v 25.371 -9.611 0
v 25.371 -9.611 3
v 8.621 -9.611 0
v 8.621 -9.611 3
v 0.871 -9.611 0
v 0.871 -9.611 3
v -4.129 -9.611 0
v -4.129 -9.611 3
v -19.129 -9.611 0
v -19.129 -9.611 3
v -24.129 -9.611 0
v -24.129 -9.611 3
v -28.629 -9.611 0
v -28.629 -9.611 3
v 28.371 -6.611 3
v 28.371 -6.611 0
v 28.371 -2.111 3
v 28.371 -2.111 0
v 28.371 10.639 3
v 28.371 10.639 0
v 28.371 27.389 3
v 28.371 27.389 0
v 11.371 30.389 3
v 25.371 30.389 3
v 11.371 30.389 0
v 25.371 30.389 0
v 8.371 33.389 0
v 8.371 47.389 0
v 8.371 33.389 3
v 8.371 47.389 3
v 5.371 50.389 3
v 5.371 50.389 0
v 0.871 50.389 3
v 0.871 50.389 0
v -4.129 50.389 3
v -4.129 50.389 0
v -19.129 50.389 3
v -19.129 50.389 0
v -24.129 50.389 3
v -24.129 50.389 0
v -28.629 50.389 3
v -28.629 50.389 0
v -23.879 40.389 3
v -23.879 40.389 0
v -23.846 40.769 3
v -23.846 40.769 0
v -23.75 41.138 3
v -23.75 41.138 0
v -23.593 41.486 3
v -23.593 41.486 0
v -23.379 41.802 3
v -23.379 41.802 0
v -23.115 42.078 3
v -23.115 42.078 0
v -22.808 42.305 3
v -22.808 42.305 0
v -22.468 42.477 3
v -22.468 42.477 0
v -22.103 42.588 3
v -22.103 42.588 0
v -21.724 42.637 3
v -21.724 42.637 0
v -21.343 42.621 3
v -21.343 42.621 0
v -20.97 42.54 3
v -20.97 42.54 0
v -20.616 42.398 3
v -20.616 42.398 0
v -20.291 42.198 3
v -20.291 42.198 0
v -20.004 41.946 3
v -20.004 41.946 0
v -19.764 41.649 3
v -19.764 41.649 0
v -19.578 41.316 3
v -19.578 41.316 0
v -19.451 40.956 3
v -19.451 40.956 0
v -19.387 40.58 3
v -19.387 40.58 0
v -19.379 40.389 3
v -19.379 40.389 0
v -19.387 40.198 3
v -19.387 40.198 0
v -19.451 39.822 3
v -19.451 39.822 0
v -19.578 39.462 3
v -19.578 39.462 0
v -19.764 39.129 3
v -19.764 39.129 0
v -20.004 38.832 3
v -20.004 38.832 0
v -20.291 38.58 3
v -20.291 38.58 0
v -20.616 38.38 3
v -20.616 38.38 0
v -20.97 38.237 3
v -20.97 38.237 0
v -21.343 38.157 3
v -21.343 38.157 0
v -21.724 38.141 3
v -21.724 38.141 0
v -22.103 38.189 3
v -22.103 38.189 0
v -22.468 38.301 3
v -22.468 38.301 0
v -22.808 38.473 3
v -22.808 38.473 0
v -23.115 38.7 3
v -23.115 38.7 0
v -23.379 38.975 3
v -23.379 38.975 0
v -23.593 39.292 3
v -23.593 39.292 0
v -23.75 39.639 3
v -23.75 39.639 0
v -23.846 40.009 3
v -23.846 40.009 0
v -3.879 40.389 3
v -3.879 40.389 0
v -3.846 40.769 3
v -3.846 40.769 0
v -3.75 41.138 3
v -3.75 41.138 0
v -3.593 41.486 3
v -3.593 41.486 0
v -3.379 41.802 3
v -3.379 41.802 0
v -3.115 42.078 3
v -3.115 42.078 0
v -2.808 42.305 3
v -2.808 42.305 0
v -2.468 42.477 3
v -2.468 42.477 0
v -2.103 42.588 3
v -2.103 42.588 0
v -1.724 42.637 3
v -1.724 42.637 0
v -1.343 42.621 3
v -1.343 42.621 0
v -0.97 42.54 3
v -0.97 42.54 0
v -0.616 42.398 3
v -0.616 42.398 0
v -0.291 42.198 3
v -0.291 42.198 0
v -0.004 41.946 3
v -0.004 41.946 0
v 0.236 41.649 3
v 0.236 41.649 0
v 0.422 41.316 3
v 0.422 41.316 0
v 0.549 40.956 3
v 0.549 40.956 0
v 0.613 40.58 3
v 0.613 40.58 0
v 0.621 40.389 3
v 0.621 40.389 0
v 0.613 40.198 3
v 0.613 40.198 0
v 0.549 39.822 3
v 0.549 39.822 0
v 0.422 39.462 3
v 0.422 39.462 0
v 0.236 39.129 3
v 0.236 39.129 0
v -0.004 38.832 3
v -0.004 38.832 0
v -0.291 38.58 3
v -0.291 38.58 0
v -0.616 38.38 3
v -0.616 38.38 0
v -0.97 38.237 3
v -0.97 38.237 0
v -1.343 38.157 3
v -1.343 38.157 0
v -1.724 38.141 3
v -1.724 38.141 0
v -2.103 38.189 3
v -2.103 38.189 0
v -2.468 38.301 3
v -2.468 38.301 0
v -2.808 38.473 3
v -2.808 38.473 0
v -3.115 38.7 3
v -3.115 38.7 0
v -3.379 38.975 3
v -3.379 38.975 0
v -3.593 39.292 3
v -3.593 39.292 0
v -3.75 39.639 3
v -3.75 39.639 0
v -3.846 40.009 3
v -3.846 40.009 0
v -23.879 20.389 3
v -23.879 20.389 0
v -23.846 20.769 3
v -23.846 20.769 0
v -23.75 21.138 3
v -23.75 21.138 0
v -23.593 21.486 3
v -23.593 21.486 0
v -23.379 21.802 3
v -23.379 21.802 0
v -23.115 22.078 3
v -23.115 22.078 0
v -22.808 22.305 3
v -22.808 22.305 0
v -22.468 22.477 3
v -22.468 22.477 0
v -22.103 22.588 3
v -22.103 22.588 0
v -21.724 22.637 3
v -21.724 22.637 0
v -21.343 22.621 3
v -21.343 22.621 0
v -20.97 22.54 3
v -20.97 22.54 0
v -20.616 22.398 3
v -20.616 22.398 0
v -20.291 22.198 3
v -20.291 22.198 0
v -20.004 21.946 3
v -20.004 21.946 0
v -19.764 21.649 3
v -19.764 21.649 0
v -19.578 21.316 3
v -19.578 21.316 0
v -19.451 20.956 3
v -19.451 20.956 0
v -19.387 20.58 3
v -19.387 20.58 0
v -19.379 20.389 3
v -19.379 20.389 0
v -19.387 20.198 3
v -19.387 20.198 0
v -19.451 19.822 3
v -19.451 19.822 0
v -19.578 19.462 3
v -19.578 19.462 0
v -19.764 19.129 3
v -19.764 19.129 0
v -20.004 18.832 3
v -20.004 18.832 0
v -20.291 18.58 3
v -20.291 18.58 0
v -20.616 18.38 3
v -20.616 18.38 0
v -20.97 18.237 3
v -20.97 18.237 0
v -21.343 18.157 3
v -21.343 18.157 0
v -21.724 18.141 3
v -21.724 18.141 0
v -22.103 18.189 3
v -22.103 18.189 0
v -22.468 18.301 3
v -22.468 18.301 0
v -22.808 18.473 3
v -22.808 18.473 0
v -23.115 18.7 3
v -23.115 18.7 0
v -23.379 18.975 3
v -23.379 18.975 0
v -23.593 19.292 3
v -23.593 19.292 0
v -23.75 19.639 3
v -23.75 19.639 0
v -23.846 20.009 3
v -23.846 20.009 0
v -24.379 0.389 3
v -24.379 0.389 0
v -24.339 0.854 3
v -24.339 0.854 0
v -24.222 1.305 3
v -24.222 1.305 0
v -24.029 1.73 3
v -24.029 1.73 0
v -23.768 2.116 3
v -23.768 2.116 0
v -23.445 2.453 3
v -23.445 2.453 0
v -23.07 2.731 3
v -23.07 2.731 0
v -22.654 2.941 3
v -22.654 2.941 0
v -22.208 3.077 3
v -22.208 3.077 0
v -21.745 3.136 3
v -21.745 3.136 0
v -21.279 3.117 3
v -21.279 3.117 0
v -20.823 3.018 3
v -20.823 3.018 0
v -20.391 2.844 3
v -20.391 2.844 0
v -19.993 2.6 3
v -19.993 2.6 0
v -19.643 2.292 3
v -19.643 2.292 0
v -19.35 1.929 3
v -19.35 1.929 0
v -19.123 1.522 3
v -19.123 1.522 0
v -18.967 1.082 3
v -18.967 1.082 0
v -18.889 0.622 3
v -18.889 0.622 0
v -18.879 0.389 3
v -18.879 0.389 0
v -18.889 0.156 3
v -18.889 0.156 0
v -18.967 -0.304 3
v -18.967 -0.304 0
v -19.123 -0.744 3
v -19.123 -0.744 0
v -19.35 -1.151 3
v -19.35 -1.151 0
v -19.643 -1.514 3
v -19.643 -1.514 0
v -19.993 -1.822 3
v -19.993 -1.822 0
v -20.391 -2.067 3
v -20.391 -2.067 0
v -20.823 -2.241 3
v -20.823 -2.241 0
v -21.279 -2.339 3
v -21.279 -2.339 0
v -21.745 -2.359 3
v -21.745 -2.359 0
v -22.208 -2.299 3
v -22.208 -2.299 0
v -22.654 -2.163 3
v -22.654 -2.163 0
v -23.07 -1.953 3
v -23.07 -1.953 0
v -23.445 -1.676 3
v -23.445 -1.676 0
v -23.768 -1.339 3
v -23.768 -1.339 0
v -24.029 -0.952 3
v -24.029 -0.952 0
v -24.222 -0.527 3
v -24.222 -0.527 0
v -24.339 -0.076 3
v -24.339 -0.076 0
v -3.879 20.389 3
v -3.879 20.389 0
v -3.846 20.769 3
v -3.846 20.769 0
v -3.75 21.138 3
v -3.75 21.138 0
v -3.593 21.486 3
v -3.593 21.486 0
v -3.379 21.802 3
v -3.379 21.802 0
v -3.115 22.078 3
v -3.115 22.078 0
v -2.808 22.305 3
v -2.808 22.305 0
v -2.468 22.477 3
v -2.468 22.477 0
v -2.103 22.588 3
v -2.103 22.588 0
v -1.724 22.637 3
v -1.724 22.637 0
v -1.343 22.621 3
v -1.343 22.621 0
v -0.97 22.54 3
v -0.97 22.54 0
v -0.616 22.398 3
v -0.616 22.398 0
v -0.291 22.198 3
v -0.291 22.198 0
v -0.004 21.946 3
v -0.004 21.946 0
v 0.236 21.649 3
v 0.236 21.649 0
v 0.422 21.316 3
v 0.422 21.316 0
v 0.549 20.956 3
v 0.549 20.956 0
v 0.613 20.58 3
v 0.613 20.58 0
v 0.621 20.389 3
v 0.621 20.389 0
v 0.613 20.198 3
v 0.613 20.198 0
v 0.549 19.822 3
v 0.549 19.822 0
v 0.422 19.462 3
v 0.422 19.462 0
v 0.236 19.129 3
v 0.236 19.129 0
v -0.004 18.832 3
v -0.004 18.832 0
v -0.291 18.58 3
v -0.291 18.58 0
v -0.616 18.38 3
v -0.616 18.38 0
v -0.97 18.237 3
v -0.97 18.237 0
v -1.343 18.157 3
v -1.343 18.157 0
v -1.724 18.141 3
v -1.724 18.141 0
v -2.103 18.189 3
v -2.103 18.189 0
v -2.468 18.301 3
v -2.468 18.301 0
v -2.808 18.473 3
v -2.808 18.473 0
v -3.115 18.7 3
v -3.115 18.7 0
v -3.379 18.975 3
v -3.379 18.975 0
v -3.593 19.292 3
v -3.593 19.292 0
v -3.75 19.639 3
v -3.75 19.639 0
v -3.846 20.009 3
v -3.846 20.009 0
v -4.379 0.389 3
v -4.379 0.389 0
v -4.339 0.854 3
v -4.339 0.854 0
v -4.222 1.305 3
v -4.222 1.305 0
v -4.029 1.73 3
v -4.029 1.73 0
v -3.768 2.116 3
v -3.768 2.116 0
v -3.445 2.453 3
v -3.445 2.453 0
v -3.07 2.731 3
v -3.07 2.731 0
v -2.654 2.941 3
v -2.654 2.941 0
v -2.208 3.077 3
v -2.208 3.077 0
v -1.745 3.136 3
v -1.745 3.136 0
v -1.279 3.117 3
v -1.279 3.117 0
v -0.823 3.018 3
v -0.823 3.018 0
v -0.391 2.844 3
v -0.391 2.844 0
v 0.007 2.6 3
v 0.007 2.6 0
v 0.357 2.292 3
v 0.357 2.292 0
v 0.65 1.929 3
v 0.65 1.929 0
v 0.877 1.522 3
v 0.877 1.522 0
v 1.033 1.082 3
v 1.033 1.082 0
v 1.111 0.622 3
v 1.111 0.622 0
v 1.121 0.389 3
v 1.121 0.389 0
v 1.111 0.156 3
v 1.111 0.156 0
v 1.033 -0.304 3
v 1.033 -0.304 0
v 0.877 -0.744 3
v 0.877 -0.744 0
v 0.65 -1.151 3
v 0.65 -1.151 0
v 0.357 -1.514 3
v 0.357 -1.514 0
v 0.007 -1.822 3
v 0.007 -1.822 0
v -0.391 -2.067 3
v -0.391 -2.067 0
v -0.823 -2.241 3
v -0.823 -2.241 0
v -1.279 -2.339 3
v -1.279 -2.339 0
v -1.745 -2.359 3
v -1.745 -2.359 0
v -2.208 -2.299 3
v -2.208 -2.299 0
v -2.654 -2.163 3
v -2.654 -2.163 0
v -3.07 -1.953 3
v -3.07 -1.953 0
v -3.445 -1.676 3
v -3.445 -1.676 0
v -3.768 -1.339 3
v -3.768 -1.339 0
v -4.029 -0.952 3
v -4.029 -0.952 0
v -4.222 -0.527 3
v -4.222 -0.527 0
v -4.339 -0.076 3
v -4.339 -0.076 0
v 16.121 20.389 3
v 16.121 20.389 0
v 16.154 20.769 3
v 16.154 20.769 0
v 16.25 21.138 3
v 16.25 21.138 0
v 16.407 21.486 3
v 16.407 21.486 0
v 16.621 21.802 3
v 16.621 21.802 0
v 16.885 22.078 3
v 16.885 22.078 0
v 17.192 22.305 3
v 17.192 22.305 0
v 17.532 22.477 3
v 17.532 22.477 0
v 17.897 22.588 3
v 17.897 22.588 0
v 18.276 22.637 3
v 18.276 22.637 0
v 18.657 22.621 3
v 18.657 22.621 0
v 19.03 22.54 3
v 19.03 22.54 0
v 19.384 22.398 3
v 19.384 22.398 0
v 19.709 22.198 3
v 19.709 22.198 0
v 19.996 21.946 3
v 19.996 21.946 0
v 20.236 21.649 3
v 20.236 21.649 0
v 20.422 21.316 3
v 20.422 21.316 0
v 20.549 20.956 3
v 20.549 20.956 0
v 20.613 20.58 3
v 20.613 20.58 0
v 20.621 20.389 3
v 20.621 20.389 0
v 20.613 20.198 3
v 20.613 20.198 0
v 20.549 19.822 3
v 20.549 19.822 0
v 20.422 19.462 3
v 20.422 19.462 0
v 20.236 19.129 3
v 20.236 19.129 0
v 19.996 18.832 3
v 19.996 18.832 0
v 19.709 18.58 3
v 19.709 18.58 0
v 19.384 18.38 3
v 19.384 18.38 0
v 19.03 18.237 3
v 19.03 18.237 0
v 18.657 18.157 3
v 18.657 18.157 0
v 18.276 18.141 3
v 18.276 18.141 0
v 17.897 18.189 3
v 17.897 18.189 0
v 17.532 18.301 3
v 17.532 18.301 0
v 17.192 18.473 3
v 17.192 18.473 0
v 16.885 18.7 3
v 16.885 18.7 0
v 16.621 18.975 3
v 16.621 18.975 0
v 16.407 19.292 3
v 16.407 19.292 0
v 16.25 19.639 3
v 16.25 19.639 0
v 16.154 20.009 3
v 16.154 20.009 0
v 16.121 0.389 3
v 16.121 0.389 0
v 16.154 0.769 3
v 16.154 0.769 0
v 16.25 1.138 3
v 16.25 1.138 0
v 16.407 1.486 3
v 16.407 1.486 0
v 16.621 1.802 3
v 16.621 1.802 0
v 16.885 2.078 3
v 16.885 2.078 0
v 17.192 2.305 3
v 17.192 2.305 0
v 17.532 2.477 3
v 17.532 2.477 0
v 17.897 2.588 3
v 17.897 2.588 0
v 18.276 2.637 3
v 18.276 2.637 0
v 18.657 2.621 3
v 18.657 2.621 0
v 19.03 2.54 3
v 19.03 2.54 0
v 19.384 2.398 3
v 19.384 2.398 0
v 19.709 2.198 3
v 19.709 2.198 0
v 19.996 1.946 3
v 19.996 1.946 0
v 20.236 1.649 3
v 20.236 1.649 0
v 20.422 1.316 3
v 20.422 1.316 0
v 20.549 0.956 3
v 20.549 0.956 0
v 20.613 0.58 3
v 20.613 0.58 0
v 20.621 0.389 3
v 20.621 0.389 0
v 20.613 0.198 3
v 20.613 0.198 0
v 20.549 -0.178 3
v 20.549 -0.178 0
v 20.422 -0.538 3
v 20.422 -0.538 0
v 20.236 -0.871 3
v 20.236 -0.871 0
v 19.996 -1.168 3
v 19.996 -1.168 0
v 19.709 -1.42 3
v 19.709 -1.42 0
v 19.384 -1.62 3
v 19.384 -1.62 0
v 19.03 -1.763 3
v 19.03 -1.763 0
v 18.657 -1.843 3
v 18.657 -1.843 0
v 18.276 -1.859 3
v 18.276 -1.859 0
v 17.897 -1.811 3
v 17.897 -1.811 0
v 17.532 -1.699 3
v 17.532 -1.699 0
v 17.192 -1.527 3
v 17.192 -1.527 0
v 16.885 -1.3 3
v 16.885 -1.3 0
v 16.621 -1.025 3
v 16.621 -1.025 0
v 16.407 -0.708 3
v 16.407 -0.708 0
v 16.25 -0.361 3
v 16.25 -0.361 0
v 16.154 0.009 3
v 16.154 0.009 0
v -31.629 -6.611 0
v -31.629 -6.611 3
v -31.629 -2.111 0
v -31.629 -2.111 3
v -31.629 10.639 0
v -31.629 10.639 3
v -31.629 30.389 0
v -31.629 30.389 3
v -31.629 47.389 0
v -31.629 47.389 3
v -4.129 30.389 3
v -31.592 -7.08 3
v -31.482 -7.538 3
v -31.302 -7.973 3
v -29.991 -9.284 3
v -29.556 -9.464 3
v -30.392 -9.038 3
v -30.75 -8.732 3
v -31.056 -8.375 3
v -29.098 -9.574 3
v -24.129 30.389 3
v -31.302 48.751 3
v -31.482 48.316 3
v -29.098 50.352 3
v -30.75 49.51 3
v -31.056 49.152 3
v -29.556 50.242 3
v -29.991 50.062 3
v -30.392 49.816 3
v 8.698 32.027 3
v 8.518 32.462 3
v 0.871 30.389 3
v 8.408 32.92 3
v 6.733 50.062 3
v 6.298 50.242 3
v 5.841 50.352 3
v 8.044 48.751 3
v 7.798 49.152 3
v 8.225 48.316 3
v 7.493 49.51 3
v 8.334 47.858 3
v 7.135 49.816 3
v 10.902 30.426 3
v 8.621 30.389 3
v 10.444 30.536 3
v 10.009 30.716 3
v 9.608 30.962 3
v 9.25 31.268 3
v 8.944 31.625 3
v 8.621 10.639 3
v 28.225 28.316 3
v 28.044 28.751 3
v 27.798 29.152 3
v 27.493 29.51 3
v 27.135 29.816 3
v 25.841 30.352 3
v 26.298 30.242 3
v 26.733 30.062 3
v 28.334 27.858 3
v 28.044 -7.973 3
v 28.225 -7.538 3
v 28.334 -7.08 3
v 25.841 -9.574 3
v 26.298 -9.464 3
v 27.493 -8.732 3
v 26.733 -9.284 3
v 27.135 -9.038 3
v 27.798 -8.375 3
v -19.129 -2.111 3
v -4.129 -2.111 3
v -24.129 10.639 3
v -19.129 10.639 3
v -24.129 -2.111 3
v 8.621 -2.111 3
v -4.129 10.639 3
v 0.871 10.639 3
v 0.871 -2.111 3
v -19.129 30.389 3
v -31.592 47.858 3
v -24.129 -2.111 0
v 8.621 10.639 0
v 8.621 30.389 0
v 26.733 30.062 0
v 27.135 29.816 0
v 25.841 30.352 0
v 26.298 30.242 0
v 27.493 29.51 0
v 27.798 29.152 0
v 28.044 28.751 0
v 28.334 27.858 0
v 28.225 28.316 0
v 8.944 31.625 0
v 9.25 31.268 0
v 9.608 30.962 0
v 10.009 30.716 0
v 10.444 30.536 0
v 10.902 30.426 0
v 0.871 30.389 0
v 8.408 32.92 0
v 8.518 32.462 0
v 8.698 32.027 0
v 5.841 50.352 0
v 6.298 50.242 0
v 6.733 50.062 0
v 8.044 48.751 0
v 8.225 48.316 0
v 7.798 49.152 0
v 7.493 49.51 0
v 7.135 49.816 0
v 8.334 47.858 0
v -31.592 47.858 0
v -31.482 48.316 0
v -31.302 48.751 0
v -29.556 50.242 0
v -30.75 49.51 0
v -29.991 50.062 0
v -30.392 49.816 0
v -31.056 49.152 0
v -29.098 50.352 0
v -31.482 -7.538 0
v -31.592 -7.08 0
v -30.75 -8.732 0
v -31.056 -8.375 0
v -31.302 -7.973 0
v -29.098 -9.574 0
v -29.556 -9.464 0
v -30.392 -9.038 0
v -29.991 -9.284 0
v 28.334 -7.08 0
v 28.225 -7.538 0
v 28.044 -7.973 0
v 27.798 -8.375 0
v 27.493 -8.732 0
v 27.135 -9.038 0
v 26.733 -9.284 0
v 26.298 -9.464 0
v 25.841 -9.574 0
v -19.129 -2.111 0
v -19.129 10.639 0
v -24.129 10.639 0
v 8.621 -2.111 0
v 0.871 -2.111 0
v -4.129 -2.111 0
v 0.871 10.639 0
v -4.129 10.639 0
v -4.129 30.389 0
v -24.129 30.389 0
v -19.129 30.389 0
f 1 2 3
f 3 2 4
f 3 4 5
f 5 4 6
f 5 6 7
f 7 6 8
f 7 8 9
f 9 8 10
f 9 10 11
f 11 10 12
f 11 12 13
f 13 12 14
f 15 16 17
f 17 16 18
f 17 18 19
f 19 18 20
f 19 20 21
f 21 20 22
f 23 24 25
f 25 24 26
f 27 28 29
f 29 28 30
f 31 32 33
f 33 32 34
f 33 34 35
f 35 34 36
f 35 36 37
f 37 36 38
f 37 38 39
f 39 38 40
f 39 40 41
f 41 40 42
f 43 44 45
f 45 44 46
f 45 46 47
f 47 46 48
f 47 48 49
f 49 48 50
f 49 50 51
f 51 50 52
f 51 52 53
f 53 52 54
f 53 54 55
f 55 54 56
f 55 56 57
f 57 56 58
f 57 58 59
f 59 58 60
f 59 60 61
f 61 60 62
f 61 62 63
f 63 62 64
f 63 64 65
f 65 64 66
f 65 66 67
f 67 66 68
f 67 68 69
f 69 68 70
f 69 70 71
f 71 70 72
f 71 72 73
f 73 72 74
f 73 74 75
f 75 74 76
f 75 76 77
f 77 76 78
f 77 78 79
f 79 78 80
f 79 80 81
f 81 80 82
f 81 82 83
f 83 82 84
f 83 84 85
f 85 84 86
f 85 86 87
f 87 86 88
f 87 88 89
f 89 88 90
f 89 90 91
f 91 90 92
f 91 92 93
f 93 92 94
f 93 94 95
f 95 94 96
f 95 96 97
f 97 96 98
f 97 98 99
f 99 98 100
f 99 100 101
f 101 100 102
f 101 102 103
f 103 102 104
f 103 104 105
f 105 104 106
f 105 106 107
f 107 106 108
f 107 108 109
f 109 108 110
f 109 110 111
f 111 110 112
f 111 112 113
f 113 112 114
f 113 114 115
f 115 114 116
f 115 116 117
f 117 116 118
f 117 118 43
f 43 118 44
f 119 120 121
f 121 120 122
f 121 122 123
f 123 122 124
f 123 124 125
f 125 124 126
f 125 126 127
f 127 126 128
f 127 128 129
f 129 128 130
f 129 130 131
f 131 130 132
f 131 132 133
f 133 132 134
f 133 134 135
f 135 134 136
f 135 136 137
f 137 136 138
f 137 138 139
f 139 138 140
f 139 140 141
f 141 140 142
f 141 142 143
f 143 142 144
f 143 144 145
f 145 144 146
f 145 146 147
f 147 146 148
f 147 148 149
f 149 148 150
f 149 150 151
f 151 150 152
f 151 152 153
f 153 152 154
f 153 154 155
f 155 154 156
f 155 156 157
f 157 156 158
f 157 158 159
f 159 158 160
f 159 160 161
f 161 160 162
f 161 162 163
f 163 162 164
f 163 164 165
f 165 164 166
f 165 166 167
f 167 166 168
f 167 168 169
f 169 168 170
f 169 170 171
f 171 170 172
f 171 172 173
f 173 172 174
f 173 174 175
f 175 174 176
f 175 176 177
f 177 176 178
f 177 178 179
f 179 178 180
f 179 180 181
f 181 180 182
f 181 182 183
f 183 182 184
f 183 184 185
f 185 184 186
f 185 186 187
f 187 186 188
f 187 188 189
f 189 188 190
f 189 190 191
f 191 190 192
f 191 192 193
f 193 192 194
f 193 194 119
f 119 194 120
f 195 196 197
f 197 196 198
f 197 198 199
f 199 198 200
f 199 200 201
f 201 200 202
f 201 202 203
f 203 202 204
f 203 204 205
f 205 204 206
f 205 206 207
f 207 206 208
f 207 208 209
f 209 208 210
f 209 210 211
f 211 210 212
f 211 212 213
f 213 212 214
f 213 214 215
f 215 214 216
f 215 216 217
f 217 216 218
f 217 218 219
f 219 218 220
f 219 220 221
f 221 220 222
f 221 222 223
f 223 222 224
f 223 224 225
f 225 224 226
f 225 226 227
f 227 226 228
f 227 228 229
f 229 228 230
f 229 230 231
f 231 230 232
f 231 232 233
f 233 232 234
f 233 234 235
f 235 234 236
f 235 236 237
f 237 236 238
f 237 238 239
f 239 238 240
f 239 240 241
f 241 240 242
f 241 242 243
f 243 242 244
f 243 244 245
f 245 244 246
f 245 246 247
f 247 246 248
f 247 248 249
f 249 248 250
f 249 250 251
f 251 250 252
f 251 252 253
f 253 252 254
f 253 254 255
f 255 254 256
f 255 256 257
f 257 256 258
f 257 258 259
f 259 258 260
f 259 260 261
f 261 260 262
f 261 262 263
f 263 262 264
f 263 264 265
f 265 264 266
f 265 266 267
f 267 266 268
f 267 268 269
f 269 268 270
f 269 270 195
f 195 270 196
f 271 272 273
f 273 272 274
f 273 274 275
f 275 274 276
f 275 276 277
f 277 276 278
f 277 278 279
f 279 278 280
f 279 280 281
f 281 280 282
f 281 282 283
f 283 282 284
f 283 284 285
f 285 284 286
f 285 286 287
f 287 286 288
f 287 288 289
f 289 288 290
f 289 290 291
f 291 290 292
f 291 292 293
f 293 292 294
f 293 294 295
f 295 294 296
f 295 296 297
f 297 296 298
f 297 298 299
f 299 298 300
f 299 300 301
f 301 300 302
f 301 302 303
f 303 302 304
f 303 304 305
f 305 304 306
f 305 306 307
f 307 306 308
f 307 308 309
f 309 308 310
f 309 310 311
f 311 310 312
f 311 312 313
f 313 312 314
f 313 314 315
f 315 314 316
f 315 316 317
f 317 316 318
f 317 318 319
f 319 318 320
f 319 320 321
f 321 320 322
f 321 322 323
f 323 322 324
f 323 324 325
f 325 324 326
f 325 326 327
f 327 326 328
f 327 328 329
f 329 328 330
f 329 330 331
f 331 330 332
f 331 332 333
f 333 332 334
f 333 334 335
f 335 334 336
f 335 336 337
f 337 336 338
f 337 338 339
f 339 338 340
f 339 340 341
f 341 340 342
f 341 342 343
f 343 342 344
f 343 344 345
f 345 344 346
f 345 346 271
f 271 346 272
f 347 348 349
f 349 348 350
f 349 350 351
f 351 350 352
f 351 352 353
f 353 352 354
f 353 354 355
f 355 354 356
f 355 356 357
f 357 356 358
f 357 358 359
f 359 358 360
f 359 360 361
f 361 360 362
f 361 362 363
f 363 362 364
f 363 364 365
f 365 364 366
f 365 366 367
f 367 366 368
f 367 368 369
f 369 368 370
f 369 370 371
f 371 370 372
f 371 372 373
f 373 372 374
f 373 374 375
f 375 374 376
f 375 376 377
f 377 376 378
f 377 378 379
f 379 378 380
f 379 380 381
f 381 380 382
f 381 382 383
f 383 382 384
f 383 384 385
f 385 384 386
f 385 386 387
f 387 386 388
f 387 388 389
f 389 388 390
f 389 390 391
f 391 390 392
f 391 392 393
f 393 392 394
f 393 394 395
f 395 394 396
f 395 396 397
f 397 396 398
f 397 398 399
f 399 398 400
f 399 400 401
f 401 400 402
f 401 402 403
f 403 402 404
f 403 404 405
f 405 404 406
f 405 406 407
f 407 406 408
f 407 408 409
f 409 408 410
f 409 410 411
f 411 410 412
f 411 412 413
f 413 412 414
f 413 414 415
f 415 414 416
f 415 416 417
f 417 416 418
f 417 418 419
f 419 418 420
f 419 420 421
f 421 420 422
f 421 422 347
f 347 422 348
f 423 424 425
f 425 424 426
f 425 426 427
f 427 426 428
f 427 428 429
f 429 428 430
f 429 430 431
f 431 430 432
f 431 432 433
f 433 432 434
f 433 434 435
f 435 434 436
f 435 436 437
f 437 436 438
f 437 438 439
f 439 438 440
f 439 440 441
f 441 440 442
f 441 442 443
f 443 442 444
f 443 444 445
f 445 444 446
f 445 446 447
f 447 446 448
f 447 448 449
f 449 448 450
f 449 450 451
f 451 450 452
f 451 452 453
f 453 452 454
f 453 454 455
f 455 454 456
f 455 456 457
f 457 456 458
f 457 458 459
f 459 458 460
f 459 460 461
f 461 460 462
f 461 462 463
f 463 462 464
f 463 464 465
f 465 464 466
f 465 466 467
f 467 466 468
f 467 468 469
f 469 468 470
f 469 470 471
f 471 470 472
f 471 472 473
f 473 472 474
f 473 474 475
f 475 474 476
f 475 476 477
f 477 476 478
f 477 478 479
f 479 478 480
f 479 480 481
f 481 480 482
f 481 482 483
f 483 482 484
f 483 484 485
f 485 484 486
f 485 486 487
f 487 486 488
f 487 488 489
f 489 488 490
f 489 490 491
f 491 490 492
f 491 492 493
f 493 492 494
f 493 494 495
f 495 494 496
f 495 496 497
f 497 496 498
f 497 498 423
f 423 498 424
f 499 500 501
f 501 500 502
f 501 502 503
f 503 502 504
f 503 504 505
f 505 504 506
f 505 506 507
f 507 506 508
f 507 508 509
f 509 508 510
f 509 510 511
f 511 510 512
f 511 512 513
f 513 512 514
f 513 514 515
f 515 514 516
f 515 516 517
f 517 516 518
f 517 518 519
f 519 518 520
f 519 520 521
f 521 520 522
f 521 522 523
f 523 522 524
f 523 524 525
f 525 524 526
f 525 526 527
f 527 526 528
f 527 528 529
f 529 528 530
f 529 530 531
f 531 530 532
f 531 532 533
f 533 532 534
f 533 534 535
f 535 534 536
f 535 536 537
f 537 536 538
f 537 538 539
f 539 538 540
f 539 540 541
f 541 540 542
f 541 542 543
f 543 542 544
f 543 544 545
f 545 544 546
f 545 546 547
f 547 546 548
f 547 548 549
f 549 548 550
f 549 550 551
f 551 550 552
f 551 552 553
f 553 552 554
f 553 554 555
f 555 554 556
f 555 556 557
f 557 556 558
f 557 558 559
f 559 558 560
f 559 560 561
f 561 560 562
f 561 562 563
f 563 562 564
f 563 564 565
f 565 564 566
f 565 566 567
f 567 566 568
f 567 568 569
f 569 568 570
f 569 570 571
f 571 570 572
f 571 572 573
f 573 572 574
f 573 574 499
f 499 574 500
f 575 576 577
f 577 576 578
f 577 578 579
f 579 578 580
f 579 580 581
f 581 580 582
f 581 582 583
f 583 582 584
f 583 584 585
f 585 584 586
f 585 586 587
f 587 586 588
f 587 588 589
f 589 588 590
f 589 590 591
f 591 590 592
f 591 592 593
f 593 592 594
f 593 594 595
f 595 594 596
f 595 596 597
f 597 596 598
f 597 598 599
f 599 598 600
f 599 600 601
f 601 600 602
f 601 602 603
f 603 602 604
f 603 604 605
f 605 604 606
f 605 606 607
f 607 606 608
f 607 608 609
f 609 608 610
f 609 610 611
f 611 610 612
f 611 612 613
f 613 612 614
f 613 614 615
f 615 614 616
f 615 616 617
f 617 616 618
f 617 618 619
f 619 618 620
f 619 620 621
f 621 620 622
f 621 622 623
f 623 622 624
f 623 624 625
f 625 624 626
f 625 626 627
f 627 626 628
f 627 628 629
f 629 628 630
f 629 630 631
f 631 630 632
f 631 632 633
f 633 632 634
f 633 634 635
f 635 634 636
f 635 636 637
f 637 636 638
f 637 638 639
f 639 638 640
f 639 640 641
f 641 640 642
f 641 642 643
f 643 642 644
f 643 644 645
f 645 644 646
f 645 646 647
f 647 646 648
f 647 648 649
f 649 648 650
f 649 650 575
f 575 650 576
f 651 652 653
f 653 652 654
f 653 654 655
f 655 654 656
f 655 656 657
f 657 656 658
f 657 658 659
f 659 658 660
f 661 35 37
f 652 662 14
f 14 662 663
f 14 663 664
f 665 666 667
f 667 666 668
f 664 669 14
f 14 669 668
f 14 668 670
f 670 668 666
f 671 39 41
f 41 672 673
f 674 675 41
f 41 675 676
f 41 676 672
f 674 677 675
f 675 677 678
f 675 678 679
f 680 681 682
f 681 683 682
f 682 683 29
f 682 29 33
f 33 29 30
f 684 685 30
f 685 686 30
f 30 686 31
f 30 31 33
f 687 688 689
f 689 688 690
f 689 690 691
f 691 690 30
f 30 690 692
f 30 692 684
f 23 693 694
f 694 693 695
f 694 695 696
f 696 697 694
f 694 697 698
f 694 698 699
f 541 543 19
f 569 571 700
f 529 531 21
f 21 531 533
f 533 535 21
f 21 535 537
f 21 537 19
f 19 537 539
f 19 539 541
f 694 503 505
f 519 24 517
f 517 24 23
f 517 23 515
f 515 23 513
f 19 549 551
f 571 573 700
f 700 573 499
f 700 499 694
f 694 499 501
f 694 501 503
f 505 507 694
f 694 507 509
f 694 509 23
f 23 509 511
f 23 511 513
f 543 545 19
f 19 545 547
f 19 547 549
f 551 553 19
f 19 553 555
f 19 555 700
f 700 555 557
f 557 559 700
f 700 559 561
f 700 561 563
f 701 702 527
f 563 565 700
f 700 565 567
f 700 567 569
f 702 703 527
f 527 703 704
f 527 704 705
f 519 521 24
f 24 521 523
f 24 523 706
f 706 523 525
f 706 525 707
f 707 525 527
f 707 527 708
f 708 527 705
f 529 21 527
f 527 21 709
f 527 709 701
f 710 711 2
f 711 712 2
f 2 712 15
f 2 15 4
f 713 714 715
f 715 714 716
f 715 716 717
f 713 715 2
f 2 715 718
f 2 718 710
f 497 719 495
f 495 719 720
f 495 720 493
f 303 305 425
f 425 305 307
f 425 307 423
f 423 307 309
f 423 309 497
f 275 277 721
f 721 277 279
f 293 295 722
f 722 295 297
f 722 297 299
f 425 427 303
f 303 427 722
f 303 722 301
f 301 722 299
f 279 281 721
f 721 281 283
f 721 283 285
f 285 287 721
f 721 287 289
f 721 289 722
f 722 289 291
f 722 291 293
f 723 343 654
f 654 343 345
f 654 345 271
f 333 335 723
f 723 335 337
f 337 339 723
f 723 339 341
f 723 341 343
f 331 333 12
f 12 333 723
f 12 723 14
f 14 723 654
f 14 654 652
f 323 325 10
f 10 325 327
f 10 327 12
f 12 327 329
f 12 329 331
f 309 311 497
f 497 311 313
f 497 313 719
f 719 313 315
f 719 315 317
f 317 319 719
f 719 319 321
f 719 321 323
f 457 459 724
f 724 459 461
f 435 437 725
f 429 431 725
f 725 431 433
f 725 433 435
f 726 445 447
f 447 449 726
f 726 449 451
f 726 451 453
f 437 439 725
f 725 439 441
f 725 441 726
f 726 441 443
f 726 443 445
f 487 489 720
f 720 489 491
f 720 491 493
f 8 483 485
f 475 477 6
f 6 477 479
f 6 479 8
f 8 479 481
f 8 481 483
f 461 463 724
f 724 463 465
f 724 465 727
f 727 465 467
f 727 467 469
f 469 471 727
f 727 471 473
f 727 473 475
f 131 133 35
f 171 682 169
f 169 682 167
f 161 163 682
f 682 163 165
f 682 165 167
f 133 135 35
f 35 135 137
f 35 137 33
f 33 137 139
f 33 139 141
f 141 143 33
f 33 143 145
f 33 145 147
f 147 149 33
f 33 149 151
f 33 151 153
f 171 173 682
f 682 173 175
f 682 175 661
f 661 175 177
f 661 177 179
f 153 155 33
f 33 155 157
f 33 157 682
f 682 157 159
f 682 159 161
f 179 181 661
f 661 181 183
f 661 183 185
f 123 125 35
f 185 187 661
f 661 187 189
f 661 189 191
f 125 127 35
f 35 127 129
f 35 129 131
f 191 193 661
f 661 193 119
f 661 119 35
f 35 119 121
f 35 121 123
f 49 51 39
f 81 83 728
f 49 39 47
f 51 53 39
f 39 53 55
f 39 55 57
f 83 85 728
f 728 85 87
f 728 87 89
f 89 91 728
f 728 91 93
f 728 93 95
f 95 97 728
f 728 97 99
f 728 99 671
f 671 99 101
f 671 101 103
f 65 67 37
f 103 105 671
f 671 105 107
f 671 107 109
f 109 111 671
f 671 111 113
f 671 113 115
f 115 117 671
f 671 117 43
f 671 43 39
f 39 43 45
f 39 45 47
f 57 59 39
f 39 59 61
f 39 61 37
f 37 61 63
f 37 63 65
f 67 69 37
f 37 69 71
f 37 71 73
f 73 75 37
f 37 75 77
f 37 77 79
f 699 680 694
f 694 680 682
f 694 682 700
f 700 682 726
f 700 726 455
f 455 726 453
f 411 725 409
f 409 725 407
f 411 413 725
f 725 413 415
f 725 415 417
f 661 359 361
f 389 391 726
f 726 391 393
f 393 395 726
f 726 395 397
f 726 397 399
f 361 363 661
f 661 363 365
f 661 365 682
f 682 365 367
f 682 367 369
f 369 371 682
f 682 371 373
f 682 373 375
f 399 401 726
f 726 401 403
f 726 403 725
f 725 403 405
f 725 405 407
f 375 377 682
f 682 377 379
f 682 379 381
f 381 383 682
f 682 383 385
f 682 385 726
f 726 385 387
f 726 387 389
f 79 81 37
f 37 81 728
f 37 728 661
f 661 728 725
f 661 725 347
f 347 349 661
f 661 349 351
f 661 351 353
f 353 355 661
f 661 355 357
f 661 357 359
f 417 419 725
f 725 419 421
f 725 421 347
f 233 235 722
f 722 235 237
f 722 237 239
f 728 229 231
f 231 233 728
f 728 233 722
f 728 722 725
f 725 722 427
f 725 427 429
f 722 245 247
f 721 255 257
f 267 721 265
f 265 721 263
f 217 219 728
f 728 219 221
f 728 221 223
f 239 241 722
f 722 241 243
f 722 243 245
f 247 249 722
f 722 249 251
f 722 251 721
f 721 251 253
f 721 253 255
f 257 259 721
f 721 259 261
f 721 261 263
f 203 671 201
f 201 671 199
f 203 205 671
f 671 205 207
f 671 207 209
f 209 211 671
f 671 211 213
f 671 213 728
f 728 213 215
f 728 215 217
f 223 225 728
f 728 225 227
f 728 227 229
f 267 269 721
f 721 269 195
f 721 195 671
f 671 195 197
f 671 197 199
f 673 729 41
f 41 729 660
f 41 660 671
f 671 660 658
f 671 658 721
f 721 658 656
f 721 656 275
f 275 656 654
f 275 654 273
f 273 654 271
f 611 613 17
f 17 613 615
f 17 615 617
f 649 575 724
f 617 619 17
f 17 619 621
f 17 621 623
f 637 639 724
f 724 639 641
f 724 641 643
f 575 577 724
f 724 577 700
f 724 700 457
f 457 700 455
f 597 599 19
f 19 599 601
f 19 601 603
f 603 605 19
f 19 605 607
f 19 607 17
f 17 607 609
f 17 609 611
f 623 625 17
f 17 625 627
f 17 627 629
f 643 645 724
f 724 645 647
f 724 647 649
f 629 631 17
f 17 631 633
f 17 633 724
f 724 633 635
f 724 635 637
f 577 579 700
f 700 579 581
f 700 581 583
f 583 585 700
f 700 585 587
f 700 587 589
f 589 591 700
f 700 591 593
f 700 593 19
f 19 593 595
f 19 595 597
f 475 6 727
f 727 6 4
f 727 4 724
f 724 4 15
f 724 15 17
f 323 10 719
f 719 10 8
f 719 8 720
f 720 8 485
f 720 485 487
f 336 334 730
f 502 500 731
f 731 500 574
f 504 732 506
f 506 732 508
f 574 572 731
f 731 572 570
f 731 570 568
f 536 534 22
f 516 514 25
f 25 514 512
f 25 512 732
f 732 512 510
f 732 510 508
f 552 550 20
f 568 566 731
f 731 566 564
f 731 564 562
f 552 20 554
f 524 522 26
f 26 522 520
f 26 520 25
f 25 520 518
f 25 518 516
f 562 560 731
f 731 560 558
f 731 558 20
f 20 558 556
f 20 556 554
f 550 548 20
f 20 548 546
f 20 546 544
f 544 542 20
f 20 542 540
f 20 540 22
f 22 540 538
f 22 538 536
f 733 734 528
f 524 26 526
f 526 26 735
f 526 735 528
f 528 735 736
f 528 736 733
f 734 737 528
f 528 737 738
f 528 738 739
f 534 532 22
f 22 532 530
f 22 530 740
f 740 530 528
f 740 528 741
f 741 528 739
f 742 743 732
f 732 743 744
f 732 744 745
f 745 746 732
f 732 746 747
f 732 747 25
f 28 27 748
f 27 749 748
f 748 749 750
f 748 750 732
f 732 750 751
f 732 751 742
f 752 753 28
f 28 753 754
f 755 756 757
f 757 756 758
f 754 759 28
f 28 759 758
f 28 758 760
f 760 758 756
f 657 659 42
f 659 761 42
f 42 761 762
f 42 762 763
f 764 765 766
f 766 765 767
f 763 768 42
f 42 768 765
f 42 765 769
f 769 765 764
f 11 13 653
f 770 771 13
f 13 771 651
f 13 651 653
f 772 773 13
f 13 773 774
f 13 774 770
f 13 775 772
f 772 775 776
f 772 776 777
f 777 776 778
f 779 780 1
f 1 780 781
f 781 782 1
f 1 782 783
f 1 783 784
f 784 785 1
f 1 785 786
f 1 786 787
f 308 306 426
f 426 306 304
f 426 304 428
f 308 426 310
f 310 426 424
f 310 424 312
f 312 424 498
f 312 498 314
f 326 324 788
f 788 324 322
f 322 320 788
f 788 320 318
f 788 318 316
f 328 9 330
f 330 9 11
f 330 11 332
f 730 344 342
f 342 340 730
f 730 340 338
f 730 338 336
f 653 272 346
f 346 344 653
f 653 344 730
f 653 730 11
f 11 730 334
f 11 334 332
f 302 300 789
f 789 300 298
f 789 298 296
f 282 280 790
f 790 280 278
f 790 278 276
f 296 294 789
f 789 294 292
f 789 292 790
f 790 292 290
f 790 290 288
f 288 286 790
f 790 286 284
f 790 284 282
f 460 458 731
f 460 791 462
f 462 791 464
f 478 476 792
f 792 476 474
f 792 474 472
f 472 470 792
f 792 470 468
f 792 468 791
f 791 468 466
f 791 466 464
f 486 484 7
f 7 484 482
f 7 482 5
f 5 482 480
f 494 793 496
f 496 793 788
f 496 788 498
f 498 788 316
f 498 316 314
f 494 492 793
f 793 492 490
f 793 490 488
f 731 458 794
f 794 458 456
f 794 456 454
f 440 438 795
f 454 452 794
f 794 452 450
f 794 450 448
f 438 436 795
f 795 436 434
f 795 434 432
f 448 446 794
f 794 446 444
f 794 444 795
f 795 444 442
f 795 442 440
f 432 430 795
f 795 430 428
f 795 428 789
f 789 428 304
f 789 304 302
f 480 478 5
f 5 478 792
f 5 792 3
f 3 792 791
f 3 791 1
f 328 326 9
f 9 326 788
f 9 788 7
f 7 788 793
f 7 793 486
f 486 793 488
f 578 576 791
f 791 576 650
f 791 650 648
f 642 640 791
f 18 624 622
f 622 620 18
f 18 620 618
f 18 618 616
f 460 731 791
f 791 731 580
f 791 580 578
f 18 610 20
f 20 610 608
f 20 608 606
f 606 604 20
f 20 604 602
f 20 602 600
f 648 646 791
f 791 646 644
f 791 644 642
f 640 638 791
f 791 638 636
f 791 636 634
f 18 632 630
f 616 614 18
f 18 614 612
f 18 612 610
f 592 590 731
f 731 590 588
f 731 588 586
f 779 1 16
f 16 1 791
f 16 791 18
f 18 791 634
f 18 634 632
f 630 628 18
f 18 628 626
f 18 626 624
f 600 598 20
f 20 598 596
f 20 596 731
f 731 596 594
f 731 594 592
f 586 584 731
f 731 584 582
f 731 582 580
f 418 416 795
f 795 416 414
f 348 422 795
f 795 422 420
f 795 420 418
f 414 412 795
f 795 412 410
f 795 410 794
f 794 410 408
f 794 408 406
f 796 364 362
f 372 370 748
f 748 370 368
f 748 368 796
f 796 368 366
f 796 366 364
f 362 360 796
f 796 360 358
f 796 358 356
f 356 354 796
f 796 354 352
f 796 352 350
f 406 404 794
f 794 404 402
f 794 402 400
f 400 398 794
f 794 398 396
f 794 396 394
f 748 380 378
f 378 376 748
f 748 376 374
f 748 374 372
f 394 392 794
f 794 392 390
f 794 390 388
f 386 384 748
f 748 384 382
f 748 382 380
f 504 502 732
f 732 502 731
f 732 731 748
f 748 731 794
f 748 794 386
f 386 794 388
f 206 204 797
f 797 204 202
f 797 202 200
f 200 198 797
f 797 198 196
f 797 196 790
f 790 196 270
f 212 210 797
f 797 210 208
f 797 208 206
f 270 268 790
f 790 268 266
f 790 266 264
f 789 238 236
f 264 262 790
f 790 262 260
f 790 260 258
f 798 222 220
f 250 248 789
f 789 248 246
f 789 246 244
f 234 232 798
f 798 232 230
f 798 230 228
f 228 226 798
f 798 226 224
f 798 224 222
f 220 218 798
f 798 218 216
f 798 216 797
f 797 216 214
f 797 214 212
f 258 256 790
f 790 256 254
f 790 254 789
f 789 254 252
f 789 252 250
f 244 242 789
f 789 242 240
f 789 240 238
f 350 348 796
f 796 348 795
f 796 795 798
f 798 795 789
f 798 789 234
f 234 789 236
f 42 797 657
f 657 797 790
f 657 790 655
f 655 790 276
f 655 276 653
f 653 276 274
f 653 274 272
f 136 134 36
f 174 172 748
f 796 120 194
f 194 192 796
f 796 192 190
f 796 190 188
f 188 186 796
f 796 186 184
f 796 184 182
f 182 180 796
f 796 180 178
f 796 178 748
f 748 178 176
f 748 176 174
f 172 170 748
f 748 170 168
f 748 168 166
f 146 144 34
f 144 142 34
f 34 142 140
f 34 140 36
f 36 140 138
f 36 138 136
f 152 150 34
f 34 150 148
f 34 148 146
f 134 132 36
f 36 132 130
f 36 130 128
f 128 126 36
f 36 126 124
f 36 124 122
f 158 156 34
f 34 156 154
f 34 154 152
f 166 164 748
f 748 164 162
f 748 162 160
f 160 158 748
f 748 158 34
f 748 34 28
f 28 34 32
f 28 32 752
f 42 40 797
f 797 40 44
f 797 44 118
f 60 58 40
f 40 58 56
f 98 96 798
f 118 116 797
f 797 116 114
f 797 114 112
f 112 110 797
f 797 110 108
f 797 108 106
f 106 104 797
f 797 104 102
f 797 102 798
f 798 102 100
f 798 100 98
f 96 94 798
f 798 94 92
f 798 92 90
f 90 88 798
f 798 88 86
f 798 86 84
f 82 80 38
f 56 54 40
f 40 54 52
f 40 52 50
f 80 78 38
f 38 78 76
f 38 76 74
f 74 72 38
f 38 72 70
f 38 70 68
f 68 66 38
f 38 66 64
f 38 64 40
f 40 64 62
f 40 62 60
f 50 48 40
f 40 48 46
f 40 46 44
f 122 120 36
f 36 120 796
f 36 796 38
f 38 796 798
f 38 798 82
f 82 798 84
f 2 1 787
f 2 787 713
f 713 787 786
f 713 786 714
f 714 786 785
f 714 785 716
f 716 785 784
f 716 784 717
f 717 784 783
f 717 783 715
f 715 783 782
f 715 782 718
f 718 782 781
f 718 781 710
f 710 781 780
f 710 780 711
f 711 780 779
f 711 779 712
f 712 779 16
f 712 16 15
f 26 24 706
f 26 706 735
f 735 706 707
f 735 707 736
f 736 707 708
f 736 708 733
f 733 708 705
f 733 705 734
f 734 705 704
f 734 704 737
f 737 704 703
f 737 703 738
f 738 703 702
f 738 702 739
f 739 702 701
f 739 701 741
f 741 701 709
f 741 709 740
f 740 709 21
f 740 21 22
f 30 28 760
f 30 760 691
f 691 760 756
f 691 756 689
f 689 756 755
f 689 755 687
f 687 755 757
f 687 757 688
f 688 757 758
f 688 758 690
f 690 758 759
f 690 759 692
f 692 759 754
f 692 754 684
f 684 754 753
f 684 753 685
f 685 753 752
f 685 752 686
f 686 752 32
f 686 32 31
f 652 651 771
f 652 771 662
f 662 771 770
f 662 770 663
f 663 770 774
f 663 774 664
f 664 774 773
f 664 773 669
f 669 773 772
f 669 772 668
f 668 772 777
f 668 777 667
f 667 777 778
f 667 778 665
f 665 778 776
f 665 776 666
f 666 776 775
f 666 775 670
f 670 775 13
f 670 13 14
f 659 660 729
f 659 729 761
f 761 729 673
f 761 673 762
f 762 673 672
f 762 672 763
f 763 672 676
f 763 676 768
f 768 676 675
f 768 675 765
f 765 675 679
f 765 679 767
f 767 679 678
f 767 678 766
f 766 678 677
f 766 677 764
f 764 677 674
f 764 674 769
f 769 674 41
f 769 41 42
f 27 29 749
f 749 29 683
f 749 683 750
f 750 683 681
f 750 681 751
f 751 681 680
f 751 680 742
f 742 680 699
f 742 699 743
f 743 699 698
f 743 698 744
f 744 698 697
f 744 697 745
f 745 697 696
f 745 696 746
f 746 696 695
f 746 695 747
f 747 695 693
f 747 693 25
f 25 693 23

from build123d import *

# Parameters (mm, degrees)
SZKIC1_R                    = 2.75
SZKIC1_R_2                  = 2.25
DODANIE_WYCI_GNI_CIE1_DEPTH = 3
ZAOKR_GLENIE1_R             = 3
ZAOKR_GLENIE2_R             = 3


with BuildPart() as part:
    # Szkic1 → Dodanie-wyciągnięcie1 (new body)
    with BuildSketch(Plane.XY):
        Polygon((8.371402008, 50.388834407), (-31.628597992, 50.388834407), (-31.628597992, 10.388834407), (-31.628597992, -9.611165593), (-11.628597992, -9.611165593), (28.371402008, -9.611165593), (28.371402008, 30.388834407), (8.371402008, 30.388834407), align=None)
        with Locations((-21.628597992, 0.388834407)):
            Circle(SZKIC1_R, mode=Mode.SUBTRACT)
        with Locations((-1.628597992, 0.388834407)):
            Circle(SZKIC1_R, mode=Mode.SUBTRACT)
        with Locations((18.371402008, 0.388834407)):
            Circle(SZKIC1_R_2, mode=Mode.SUBTRACT)
        with Locations((-21.628597992, 20.388834407)):
            Circle(SZKIC1_R_2, mode=Mode.SUBTRACT)
        with Locations((-21.628597992, 40.388834407)):
            Circle(SZKIC1_R_2, mode=Mode.SUBTRACT)
        with Locations((-1.628597992, 20.388834407)):
            Circle(SZKIC1_R_2, mode=Mode.SUBTRACT)
        with Locations((18.371402008, 20.388834407)):
            Circle(SZKIC1_R_2, mode=Mode.SUBTRACT)
        with Locations((-1.628597992, 40.388834407)):
            Circle(SZKIC1_R_2, mode=Mode.SUBTRACT)
    extrude(amount=DODANIE_WYCI_GNI_CIE1_DEPTH)

    # Zaokrąglenie1
    zaokr_glenie1_edges = [part.edges().sort_by_distance(p)[0] for p in [
        (-31.628597992, -9.611165593, 1.5),
        (-31.628597992, 50.388834407, 1.5),
        (8.371402008, 50.388834407, 1.5),
        (28.371402008, 30.388834407, 1.5),
        (28.371402008, -9.611165593, 1.5),
    ]]
    fillet(zaokr_glenie1_edges, radius=ZAOKR_GLENIE1_R)

    # Zaokrąglenie2
    zaokr_glenie2_edges = [part.edges().sort_by_distance(p)[0] for p in [
        (8.371402008, 30.388834407, 1.5),
    ]]
    fillet(zaokr_glenie2_edges, radius=ZAOKR_GLENIE2_R)


solid = part.part
